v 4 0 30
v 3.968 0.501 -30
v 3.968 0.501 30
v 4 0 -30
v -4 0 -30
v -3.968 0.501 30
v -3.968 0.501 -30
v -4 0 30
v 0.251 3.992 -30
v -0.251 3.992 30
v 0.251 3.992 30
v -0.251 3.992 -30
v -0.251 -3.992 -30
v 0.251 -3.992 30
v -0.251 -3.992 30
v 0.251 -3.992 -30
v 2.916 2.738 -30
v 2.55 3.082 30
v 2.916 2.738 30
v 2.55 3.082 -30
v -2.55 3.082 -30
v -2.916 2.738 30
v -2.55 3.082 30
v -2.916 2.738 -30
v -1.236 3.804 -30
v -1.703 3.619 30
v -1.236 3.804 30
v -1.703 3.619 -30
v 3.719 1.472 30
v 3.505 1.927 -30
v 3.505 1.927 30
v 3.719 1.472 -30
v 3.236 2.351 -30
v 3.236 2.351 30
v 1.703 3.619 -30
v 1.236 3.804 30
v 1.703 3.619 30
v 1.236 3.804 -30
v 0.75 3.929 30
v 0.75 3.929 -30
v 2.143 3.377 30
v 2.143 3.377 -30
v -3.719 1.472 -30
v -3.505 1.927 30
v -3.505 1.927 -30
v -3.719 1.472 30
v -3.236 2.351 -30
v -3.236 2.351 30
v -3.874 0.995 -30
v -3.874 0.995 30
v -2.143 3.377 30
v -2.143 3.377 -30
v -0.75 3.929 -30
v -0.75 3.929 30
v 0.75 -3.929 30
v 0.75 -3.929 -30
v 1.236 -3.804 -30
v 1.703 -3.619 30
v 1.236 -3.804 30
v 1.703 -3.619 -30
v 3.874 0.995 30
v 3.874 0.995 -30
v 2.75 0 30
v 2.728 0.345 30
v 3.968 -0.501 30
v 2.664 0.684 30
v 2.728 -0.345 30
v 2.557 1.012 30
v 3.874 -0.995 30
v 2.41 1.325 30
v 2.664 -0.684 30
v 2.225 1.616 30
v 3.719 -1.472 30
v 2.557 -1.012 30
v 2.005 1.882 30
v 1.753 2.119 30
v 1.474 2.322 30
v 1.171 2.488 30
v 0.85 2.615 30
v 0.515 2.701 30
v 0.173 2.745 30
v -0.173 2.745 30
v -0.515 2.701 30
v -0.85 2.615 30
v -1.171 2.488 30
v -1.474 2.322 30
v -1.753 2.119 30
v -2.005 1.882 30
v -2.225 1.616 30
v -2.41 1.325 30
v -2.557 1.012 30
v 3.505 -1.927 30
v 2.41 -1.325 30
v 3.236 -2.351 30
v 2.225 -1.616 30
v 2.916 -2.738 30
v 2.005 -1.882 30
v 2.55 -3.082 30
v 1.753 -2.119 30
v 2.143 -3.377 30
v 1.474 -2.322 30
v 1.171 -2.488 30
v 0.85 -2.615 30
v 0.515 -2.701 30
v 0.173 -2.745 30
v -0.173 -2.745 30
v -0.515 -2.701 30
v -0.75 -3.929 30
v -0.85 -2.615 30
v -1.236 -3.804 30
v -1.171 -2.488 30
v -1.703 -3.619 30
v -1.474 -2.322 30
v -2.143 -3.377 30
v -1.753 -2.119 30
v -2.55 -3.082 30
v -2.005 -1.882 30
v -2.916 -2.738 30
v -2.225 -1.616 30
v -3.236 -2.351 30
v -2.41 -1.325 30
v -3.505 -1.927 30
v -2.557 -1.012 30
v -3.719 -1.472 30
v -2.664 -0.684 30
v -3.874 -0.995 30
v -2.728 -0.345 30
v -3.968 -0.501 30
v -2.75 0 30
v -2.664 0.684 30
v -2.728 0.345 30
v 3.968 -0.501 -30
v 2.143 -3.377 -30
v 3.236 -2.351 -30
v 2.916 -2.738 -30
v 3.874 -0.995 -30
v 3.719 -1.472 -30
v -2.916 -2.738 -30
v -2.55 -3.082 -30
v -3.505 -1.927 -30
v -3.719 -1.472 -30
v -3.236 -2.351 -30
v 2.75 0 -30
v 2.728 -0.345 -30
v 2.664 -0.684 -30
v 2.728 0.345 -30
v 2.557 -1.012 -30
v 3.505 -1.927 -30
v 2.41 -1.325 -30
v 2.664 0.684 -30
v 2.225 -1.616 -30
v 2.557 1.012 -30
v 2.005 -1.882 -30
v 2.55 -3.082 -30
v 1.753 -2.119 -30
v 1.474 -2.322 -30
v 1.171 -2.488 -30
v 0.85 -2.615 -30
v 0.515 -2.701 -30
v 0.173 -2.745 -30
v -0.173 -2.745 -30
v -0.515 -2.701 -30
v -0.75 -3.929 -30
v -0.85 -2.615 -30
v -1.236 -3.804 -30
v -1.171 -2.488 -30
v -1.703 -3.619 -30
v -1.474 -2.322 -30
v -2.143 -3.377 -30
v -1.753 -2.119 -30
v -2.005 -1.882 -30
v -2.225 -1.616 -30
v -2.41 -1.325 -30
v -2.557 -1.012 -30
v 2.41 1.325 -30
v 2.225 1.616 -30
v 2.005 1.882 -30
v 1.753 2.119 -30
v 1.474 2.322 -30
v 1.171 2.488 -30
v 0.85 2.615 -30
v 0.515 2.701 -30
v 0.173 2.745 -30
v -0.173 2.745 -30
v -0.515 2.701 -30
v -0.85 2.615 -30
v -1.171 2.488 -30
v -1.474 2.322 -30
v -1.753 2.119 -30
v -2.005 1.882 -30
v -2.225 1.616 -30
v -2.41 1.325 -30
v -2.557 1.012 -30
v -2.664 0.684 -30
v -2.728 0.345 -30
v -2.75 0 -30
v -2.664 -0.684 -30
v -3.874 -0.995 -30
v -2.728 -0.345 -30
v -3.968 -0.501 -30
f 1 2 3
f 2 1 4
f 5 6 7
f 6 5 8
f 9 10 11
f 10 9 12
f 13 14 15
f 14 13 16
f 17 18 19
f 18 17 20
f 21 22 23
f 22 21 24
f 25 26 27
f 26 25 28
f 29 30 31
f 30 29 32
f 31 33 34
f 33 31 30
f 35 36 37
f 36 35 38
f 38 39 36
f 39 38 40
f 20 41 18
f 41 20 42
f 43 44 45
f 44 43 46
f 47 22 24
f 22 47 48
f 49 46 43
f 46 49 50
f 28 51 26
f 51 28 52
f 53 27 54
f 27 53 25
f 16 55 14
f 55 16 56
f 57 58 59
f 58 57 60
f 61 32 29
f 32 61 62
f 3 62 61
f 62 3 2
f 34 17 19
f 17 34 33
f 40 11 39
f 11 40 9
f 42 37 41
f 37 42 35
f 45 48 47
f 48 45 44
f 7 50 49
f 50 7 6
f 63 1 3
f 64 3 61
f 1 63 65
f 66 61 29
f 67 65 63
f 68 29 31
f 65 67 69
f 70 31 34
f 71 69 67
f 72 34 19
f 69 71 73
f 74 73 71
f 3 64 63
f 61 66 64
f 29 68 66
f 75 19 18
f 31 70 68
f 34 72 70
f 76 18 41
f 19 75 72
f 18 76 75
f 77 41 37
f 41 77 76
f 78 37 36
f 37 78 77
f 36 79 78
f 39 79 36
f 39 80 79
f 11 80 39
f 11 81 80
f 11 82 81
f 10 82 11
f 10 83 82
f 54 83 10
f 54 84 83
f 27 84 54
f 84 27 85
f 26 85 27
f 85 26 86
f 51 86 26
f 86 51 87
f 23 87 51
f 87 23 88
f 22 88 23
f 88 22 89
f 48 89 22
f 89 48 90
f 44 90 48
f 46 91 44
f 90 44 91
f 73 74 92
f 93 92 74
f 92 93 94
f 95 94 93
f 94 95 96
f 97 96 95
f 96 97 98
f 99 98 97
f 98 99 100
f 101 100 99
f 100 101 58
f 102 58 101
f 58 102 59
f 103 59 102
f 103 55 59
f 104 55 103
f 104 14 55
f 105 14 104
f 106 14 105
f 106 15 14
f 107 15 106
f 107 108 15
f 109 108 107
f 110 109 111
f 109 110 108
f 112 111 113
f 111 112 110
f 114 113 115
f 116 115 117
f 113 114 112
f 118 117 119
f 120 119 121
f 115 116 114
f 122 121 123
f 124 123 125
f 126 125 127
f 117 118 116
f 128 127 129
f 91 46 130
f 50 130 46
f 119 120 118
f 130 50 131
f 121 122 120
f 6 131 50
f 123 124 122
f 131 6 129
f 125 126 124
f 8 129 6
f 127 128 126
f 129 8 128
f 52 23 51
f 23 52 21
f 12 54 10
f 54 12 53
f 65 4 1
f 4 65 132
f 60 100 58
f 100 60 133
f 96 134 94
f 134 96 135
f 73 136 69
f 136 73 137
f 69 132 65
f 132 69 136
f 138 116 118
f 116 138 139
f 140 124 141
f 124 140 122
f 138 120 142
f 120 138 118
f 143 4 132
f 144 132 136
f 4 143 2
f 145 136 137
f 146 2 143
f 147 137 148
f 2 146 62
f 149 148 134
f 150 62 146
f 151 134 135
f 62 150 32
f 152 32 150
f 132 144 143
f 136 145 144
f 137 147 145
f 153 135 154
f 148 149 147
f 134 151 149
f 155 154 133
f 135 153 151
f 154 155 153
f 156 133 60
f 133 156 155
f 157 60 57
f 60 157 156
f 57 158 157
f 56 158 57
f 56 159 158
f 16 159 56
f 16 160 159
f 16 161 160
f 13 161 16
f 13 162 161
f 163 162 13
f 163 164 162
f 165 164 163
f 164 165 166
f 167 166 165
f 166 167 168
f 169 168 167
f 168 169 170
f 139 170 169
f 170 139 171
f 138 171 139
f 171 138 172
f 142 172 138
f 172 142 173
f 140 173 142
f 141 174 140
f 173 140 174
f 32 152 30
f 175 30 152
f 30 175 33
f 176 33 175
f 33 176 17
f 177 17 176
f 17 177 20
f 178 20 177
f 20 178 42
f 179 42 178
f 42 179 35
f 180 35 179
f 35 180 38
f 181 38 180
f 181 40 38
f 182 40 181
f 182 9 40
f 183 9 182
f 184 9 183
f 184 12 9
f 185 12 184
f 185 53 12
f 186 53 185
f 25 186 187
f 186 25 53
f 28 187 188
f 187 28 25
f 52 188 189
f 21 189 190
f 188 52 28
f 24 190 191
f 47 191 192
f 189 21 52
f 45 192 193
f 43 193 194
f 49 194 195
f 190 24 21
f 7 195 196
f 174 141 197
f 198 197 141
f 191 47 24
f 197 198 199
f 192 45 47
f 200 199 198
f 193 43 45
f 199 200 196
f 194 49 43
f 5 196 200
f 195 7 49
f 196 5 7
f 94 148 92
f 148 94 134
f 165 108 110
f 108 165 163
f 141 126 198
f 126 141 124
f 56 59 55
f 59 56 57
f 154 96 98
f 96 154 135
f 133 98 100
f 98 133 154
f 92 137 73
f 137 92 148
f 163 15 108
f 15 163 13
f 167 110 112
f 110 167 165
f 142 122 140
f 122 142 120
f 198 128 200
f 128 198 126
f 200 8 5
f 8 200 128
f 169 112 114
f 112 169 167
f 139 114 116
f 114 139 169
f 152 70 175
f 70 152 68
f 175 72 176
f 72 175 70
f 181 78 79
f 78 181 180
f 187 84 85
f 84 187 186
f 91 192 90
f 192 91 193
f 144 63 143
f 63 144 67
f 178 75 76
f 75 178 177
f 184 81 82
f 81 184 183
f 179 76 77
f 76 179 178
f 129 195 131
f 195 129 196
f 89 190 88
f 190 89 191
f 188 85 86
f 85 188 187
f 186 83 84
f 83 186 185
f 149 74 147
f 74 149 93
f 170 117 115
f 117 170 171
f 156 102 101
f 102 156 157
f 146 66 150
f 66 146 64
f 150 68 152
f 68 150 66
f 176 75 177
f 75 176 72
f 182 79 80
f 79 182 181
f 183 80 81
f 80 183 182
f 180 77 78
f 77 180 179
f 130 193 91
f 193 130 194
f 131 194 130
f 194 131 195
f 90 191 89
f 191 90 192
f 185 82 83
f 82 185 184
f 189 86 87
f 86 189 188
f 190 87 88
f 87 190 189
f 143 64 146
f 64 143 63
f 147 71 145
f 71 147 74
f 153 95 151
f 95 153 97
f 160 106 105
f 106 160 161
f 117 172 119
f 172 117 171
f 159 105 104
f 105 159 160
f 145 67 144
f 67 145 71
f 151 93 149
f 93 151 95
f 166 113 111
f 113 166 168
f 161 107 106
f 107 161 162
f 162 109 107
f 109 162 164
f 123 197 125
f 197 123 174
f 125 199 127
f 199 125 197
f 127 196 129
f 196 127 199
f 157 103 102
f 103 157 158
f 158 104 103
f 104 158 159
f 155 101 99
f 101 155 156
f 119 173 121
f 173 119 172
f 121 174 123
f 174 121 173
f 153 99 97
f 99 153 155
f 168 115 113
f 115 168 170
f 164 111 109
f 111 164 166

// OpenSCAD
$fn = 50;


difference() {
	union() {
		translate(v = [0, 0, -30.0000000000]) {
			cylinder(h = 60, r = 4.0000000000);
		}
	}
	union() {
		translate(v = [0, 0, -100.0000000000]) {
			cylinder(h = 200, r = 2.7500000000);
		}
	}
}
